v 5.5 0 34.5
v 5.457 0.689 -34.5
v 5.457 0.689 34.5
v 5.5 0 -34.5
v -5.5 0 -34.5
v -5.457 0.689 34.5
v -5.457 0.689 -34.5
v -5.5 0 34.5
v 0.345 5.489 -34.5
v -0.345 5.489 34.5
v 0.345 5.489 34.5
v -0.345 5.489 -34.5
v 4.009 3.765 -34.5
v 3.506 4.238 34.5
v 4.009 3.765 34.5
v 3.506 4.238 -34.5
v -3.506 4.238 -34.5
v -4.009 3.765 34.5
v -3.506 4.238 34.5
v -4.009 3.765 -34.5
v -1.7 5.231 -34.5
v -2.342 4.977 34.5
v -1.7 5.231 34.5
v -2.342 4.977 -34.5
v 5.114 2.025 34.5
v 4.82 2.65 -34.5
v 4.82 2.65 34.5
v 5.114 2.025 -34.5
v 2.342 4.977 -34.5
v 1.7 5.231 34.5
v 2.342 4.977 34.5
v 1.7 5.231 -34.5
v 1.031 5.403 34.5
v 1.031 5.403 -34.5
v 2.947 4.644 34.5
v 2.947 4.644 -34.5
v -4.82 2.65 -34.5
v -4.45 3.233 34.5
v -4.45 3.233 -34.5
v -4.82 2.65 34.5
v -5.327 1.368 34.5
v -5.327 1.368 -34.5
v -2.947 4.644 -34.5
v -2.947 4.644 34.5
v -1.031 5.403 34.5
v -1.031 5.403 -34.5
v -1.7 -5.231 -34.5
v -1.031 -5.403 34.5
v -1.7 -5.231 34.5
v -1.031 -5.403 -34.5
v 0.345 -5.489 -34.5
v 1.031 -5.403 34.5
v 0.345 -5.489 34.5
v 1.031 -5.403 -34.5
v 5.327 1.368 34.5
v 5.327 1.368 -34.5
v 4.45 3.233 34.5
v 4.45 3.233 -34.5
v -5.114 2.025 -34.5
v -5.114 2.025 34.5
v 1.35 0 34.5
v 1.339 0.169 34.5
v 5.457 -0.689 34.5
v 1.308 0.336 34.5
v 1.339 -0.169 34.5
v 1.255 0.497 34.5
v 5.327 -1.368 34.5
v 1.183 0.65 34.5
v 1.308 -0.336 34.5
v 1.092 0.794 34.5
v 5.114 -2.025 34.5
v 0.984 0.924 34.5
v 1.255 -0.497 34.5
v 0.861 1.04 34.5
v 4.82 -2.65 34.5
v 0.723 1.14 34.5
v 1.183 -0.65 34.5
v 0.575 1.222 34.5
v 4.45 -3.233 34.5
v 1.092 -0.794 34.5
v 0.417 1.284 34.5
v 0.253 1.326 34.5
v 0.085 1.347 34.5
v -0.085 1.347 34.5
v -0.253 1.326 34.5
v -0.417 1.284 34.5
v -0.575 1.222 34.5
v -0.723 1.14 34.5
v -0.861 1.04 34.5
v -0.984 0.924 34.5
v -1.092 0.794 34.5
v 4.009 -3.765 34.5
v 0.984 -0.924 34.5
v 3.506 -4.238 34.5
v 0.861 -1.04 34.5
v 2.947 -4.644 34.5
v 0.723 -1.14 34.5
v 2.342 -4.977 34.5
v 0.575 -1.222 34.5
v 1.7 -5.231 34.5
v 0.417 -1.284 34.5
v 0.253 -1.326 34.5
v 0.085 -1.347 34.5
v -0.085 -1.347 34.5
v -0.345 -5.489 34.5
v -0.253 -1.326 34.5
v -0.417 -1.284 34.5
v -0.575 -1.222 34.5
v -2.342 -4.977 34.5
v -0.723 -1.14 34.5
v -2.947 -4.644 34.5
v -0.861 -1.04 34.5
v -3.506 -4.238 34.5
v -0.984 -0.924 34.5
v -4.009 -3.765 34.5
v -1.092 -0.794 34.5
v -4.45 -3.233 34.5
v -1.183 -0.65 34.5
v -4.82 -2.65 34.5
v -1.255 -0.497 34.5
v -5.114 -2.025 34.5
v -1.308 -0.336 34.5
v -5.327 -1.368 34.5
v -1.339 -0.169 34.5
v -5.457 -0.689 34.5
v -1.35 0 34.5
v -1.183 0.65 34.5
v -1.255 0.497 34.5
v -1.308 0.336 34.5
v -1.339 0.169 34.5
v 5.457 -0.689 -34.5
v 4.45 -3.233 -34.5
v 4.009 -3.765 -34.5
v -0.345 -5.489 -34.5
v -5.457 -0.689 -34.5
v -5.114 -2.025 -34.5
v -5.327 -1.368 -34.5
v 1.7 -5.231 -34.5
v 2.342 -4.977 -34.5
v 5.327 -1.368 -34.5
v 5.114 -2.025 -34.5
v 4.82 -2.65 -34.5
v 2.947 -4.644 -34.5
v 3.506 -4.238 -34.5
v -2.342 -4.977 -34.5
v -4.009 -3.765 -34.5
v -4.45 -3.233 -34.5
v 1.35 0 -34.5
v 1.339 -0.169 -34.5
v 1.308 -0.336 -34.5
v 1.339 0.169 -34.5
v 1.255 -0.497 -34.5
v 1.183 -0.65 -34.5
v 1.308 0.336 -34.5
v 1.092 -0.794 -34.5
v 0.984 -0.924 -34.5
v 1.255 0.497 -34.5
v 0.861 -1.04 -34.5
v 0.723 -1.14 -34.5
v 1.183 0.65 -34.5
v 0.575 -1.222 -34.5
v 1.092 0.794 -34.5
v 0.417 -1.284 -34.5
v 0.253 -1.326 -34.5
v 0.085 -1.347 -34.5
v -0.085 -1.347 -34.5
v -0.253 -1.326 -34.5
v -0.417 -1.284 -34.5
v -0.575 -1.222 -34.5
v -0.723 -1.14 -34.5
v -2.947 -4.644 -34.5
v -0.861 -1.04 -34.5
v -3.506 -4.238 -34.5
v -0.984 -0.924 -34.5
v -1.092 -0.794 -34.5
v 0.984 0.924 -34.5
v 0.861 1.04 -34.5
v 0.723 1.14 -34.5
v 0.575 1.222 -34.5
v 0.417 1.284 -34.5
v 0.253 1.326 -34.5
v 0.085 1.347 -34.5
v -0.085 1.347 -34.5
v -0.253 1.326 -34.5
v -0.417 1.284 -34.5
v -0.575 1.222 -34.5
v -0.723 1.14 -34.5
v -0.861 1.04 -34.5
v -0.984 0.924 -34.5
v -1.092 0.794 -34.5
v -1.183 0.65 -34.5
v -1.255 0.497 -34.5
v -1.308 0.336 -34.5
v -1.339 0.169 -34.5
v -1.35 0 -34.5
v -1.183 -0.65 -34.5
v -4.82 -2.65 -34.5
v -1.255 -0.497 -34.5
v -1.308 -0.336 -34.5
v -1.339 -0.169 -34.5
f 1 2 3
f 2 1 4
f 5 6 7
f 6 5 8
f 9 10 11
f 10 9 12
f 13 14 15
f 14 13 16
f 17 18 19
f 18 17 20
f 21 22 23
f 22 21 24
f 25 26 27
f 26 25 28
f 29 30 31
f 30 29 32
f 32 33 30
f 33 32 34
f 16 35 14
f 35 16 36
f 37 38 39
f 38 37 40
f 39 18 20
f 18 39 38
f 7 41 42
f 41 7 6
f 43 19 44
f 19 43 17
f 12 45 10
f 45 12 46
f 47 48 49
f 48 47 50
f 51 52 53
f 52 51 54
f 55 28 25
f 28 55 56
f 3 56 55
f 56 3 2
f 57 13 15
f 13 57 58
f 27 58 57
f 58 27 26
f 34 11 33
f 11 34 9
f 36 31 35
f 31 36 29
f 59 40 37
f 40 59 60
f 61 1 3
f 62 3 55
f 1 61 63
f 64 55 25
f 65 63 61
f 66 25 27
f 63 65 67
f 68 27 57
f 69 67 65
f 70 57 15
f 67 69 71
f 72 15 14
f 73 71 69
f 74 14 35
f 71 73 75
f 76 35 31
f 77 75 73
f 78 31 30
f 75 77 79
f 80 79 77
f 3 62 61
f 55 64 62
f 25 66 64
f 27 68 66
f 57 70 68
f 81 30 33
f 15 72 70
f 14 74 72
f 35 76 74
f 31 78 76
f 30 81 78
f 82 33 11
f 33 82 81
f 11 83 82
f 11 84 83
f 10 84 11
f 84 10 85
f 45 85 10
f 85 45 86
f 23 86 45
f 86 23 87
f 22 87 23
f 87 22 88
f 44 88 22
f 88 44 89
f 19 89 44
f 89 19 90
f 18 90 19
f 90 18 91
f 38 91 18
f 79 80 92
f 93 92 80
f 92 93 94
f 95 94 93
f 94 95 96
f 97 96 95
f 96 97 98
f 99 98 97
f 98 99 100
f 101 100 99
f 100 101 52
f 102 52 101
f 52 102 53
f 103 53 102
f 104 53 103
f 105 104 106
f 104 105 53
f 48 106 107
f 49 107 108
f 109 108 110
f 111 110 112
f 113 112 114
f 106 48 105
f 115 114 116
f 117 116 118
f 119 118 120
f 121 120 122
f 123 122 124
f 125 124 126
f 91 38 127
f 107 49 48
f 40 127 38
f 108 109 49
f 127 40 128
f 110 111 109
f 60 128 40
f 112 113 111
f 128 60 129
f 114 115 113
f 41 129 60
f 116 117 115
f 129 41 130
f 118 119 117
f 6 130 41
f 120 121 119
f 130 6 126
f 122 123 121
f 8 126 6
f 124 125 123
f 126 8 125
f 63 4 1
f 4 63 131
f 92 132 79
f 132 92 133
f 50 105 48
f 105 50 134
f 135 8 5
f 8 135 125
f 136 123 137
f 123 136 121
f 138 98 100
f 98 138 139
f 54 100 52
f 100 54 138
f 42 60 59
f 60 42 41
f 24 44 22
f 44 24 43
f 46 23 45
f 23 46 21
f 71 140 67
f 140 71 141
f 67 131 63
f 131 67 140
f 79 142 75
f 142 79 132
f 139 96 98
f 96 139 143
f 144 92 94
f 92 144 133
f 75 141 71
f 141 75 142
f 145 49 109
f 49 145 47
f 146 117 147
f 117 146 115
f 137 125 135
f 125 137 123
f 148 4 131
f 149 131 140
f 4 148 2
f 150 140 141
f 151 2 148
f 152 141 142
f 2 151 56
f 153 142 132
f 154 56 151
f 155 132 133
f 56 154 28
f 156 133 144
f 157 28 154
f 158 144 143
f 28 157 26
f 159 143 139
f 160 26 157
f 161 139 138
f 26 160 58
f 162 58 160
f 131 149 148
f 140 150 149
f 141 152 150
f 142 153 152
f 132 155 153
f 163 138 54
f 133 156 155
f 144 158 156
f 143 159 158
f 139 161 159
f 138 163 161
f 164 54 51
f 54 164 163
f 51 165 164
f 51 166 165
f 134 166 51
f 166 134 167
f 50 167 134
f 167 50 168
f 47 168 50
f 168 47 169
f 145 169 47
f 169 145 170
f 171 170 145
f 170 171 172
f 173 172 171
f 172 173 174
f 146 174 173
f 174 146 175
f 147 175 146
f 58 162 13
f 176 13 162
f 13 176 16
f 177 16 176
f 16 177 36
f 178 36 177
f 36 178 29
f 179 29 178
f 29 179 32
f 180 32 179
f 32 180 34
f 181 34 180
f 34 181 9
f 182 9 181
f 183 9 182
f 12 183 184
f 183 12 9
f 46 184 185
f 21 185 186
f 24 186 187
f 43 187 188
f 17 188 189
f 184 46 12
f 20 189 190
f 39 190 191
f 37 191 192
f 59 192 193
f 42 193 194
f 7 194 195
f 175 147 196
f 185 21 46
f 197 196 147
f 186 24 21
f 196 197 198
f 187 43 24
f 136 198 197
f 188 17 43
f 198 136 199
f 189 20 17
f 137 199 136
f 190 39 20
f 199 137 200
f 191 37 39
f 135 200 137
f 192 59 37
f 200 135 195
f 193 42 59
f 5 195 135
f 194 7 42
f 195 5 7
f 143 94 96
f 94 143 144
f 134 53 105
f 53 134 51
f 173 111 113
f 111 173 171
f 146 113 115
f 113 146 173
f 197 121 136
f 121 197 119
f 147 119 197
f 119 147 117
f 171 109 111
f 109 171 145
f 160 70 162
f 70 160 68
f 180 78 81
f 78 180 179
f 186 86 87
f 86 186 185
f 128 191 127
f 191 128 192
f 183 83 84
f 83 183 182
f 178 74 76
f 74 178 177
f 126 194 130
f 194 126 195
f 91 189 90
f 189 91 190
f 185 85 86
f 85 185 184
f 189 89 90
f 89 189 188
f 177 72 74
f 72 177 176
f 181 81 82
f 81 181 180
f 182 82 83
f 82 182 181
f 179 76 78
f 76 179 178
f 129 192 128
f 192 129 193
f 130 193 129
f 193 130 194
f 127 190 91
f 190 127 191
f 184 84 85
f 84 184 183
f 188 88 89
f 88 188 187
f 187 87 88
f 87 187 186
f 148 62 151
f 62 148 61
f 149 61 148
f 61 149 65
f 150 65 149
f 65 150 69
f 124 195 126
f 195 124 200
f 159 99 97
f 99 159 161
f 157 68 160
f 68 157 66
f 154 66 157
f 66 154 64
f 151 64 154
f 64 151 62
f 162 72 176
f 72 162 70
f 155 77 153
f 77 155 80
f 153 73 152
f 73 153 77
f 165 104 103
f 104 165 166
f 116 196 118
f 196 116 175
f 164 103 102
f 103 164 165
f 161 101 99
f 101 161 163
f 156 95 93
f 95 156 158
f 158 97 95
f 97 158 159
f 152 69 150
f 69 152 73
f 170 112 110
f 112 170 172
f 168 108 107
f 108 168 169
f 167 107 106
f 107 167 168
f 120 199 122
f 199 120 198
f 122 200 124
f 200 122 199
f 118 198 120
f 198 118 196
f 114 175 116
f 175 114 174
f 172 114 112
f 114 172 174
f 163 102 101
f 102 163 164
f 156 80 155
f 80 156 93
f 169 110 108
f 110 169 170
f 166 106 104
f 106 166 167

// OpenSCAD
$fn = 50;


difference() {
	union() {
		translate(v = [0, 0, -34.5000000000]) {
			cylinder(h = 69, r = 5.5000000000);
		}
	}
	union() {
		translate(v = [0, 0, -100.0000000000]) {
			cylinder(h = 200, r = 1.3500000000);
		}
	}
}
